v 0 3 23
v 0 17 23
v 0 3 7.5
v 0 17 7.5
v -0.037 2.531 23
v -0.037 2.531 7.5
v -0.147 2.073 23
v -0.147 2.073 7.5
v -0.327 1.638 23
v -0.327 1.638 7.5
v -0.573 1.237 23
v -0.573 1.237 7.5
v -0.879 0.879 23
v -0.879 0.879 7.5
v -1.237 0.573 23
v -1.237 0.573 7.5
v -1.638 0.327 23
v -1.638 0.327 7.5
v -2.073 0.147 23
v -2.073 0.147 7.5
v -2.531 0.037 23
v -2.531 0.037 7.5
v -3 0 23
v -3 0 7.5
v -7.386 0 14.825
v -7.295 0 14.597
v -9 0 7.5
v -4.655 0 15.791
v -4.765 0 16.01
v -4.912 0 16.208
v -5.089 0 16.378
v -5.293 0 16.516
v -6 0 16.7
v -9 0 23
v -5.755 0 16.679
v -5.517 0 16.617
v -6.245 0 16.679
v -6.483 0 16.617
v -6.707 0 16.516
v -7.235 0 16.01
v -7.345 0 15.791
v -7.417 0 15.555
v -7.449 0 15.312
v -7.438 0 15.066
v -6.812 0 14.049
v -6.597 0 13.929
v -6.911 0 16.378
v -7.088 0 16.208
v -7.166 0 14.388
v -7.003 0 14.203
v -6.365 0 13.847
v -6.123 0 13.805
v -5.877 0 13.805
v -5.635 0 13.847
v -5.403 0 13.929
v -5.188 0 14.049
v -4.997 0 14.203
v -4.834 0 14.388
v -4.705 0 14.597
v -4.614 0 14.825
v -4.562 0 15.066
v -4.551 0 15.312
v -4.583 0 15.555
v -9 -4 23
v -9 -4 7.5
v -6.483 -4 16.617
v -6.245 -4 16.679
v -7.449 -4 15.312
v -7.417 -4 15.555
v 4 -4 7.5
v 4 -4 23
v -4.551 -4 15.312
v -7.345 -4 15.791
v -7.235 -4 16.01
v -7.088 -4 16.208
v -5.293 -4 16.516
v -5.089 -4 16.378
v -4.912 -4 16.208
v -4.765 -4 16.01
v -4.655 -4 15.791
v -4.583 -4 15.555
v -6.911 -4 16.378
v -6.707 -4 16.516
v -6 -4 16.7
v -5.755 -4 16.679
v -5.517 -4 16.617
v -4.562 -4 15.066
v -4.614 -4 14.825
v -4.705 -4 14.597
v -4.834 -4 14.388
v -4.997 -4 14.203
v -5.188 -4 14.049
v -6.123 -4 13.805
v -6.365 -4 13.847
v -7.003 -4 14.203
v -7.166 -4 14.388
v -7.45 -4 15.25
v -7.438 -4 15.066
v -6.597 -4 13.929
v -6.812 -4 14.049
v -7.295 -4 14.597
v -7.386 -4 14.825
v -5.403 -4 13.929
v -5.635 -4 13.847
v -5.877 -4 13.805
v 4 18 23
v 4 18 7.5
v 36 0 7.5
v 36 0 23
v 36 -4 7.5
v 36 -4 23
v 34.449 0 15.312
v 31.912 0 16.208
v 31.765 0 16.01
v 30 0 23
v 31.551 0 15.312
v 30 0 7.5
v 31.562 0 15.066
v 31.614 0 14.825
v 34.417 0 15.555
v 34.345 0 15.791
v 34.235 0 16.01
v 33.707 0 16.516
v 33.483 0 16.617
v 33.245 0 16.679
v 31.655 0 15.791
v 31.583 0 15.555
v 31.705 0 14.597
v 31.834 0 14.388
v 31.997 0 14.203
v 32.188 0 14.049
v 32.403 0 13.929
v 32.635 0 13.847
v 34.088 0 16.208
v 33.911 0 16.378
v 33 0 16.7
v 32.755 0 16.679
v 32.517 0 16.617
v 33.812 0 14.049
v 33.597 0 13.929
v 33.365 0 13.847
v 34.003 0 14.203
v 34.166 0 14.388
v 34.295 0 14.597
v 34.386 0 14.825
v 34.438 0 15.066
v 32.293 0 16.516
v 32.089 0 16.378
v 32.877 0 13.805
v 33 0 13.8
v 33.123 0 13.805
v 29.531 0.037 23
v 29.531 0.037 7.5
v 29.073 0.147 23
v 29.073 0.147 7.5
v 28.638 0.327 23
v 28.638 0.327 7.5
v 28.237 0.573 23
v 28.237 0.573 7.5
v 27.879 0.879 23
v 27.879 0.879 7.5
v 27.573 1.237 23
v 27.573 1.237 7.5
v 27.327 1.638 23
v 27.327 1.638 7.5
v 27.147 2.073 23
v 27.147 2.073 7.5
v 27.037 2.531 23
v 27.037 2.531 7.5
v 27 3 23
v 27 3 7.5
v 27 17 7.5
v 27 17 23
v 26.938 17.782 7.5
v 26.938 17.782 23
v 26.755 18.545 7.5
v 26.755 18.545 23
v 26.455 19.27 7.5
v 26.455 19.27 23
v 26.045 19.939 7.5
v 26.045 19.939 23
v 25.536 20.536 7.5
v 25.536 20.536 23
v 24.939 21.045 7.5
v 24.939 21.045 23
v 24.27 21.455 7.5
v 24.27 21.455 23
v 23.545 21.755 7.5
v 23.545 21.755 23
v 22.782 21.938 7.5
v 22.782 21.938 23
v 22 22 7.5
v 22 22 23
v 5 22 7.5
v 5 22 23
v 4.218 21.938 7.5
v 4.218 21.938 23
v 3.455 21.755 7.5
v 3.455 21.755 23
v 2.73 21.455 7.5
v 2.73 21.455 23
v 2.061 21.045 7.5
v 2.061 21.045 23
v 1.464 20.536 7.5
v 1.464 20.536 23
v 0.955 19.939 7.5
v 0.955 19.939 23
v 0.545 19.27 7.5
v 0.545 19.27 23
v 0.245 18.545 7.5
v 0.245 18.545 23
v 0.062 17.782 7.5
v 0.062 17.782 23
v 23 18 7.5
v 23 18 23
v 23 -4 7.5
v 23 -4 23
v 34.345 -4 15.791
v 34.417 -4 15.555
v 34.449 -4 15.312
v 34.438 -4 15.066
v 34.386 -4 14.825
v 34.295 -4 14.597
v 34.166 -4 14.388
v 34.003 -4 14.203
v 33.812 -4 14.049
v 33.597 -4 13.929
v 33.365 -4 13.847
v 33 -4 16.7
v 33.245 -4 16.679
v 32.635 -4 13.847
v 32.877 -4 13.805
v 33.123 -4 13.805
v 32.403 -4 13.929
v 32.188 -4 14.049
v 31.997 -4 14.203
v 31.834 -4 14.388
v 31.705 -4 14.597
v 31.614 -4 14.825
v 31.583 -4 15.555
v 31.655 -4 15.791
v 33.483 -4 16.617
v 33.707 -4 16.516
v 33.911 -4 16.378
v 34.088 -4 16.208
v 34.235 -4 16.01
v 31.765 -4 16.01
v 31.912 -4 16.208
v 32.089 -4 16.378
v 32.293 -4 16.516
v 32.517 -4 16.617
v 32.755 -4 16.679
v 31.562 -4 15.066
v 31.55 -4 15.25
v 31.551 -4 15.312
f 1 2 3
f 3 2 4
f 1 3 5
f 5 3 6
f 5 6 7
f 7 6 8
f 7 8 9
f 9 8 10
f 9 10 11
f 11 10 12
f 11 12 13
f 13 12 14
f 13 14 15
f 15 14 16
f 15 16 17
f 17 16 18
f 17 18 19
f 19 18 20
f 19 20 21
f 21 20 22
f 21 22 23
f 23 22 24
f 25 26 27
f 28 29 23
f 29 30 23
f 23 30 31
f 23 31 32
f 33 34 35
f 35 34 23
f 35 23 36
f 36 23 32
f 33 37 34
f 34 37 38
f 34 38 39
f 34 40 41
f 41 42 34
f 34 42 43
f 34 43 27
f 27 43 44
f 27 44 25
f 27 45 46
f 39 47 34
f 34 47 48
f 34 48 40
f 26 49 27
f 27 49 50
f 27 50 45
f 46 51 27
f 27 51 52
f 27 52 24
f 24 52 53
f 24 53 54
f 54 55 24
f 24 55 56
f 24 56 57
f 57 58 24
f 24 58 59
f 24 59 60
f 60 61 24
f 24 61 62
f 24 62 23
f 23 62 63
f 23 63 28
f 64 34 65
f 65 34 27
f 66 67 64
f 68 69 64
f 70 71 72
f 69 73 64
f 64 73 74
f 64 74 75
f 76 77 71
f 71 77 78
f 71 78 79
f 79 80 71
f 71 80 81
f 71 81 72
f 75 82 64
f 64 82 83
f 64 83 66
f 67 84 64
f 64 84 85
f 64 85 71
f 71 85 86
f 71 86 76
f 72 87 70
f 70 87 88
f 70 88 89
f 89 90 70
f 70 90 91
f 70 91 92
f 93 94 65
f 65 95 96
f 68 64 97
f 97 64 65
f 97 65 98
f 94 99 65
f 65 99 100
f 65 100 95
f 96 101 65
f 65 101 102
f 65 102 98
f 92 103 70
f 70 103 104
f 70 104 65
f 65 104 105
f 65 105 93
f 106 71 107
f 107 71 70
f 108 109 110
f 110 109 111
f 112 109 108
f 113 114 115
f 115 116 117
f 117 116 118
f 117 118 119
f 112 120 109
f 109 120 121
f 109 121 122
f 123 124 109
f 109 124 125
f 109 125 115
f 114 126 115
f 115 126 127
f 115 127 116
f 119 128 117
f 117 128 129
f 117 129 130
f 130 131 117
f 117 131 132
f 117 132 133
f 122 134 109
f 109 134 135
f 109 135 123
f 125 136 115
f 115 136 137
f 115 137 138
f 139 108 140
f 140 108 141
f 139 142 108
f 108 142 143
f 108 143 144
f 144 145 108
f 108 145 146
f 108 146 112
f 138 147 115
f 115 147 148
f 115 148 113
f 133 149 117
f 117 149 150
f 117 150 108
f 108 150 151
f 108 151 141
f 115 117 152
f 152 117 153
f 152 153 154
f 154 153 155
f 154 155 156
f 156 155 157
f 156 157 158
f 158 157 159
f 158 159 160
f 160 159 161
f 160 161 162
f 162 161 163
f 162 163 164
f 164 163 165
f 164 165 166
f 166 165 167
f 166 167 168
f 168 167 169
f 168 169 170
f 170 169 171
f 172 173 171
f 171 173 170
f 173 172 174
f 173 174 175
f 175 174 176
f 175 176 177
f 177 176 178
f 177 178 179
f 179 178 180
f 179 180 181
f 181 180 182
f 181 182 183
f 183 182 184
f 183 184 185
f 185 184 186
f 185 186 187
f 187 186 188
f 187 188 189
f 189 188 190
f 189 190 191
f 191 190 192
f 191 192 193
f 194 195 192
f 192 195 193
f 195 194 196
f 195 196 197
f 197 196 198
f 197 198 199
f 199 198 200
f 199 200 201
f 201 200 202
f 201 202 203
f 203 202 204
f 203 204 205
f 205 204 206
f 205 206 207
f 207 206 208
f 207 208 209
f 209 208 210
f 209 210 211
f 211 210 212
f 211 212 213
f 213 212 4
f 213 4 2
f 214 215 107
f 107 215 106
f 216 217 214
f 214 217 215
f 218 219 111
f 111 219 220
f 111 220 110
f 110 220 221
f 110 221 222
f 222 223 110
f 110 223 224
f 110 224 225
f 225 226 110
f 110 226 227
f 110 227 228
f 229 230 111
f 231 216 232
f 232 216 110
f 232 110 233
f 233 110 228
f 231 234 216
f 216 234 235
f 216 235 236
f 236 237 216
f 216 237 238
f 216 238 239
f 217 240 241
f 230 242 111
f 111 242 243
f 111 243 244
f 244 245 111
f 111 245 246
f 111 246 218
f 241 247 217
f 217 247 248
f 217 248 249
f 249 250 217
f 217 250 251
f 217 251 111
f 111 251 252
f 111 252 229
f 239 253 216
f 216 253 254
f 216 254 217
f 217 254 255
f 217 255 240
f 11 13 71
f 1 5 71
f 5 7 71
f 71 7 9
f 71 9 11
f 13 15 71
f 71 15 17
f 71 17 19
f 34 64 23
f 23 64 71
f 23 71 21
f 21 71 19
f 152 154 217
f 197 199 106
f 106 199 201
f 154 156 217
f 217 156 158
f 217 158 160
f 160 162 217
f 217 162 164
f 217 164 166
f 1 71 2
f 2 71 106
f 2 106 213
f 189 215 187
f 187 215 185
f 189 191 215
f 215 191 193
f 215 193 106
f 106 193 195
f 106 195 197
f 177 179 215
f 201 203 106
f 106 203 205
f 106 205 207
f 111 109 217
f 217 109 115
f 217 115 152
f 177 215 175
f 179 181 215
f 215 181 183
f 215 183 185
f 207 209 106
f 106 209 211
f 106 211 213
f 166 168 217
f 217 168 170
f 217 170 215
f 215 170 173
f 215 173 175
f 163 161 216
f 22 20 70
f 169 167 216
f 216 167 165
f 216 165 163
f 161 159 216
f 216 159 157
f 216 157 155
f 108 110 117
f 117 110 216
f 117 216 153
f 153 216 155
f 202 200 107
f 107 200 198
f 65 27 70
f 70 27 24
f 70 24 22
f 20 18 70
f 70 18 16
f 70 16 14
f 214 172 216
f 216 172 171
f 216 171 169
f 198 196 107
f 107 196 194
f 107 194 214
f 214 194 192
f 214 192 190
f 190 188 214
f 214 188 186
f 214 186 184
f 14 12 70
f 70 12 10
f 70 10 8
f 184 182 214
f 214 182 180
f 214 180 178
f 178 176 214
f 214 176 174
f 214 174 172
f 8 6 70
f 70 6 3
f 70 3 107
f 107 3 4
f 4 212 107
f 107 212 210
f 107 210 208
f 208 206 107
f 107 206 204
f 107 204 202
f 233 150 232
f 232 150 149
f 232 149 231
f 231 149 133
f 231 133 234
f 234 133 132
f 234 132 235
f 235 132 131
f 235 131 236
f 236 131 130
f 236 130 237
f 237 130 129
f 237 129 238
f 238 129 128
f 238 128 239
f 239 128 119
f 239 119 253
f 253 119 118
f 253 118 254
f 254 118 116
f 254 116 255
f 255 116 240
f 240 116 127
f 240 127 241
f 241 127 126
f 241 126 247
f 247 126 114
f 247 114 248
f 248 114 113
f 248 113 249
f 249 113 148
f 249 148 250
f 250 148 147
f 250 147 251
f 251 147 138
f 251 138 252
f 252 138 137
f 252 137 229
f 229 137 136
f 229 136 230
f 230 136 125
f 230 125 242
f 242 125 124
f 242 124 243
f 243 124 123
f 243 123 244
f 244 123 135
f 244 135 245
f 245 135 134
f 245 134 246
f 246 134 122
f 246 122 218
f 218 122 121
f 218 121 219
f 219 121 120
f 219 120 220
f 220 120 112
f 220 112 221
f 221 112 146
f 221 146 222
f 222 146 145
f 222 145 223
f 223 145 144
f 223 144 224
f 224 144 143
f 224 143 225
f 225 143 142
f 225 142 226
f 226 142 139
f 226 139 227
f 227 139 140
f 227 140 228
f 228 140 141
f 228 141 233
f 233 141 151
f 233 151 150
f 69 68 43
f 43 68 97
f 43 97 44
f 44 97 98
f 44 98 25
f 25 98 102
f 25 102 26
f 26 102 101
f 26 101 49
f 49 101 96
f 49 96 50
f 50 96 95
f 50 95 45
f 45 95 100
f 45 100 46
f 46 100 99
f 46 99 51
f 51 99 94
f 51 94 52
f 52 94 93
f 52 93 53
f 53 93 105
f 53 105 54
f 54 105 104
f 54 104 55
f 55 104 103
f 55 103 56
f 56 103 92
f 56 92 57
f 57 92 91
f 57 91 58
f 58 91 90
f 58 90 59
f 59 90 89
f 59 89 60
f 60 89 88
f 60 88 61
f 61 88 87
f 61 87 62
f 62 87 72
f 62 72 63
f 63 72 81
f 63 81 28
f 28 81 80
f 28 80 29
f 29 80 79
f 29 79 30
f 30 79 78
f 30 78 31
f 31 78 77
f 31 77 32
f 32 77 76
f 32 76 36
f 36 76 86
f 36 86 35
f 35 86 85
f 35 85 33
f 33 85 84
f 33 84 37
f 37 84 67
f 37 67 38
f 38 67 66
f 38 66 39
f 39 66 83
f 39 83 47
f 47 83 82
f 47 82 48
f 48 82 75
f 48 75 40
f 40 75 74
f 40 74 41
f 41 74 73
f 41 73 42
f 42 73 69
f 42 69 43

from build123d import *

# Parameters (mm, degrees)
BOSS_EXTRUDE1_DEPTH     = 23
CUT_EXTRUDE2_DEPTH      = 23
CUT_EXTRUDE2_DEPTH_BACK = 10
SKETCH4_W               = 3.5
SKETCH4_H               = 21
SKETCH5_W               = 45
SKETCH5_H               = 7.5
CUT_EXTRUDE3_DEPTH      = 26
SKETCH7_R               = 1.45
CUT_EXTRUDE4_DEPTH      = 26


with BuildPart() as part:
    # Sketch1 → Boss-Extrude1 (new body)
    with BuildSketch(Plane.XY):
        with BuildLine():
            Line((0, 3), (0, 17))
            ThreePointArc((0, 17), (1.464466094, 20.535533906), (5, 22))
            Line((5, 22), (22, 22))
            ThreePointArc((22, 22), (25.535533906, 20.535533906), (27, 17))
            Line((27, 17), (27, 3))
            ThreePointArc((27, 3), (27.878679656, 0.878679656), (30, 0))
            Line((30, 0), (36, 0))
            Line((36, 0), (36, -4))
            Line((36, -4), (23, -4))
            Line((23, -4), (23, 18))
            Line((23, 18), (4, 18))
            Line((4, 18), (4, -4))
            Line((4, -4), (-9, -4))
            Line((-9, -4), (-9, 0))
            Line((-9, 0), (-3, 0))
            ThreePointArc((-3, 0), (-0.878679656, 0.878679656), (0, 3))
        make_face()
    extrude(amount=BOSS_EXTRUDE1_DEPTH)

    # Sketch4 → Cut-Extrude2 (cut, two sides: drawn at the far end of the back side and taken through both)
    with BuildSketch(Plane.ZY.offset(-CUT_EXTRUDE2_DEPTH_BACK)):
        with Locations((5.75, 6.5)):
            Rectangle(SKETCH4_W, SKETCH4_H)
    extrude(amount=CUT_EXTRUDE2_DEPTH + CUT_EXTRUDE2_DEPTH_BACK, mode=Mode.SUBTRACT)

    # Sketch5 → Cut-Extrude3 (cut)
    with BuildSketch(Plane(origin=(0, 22, 0), x_dir=(1, 0, 0), z_dir=(0, 1, 0))):
        with Locations((13.5, -3.75)):
            Rectangle(SKETCH5_W, SKETCH5_H)
    extrude(amount=-CUT_EXTRUDE3_DEPTH, mode=Mode.SUBTRACT)

    # Sketch7 → Cut-Extrude4 (cut)
    with BuildSketch(Plane(origin=(0, 0, 0), x_dir=(1, 0, 0), z_dir=(0, 1, 0))):
        with Locations(Location((-6, -15.25, 0), (0, 0, 270))):
            Circle(SKETCH7_R)
        with Locations(Location((33, -15.25, 0), (0, 0, 180))):
            Circle(SKETCH7_R)
    extrude(amount=-CUT_EXTRUDE4_DEPTH, mode=Mode.SUBTRACT)


solid = part.part
